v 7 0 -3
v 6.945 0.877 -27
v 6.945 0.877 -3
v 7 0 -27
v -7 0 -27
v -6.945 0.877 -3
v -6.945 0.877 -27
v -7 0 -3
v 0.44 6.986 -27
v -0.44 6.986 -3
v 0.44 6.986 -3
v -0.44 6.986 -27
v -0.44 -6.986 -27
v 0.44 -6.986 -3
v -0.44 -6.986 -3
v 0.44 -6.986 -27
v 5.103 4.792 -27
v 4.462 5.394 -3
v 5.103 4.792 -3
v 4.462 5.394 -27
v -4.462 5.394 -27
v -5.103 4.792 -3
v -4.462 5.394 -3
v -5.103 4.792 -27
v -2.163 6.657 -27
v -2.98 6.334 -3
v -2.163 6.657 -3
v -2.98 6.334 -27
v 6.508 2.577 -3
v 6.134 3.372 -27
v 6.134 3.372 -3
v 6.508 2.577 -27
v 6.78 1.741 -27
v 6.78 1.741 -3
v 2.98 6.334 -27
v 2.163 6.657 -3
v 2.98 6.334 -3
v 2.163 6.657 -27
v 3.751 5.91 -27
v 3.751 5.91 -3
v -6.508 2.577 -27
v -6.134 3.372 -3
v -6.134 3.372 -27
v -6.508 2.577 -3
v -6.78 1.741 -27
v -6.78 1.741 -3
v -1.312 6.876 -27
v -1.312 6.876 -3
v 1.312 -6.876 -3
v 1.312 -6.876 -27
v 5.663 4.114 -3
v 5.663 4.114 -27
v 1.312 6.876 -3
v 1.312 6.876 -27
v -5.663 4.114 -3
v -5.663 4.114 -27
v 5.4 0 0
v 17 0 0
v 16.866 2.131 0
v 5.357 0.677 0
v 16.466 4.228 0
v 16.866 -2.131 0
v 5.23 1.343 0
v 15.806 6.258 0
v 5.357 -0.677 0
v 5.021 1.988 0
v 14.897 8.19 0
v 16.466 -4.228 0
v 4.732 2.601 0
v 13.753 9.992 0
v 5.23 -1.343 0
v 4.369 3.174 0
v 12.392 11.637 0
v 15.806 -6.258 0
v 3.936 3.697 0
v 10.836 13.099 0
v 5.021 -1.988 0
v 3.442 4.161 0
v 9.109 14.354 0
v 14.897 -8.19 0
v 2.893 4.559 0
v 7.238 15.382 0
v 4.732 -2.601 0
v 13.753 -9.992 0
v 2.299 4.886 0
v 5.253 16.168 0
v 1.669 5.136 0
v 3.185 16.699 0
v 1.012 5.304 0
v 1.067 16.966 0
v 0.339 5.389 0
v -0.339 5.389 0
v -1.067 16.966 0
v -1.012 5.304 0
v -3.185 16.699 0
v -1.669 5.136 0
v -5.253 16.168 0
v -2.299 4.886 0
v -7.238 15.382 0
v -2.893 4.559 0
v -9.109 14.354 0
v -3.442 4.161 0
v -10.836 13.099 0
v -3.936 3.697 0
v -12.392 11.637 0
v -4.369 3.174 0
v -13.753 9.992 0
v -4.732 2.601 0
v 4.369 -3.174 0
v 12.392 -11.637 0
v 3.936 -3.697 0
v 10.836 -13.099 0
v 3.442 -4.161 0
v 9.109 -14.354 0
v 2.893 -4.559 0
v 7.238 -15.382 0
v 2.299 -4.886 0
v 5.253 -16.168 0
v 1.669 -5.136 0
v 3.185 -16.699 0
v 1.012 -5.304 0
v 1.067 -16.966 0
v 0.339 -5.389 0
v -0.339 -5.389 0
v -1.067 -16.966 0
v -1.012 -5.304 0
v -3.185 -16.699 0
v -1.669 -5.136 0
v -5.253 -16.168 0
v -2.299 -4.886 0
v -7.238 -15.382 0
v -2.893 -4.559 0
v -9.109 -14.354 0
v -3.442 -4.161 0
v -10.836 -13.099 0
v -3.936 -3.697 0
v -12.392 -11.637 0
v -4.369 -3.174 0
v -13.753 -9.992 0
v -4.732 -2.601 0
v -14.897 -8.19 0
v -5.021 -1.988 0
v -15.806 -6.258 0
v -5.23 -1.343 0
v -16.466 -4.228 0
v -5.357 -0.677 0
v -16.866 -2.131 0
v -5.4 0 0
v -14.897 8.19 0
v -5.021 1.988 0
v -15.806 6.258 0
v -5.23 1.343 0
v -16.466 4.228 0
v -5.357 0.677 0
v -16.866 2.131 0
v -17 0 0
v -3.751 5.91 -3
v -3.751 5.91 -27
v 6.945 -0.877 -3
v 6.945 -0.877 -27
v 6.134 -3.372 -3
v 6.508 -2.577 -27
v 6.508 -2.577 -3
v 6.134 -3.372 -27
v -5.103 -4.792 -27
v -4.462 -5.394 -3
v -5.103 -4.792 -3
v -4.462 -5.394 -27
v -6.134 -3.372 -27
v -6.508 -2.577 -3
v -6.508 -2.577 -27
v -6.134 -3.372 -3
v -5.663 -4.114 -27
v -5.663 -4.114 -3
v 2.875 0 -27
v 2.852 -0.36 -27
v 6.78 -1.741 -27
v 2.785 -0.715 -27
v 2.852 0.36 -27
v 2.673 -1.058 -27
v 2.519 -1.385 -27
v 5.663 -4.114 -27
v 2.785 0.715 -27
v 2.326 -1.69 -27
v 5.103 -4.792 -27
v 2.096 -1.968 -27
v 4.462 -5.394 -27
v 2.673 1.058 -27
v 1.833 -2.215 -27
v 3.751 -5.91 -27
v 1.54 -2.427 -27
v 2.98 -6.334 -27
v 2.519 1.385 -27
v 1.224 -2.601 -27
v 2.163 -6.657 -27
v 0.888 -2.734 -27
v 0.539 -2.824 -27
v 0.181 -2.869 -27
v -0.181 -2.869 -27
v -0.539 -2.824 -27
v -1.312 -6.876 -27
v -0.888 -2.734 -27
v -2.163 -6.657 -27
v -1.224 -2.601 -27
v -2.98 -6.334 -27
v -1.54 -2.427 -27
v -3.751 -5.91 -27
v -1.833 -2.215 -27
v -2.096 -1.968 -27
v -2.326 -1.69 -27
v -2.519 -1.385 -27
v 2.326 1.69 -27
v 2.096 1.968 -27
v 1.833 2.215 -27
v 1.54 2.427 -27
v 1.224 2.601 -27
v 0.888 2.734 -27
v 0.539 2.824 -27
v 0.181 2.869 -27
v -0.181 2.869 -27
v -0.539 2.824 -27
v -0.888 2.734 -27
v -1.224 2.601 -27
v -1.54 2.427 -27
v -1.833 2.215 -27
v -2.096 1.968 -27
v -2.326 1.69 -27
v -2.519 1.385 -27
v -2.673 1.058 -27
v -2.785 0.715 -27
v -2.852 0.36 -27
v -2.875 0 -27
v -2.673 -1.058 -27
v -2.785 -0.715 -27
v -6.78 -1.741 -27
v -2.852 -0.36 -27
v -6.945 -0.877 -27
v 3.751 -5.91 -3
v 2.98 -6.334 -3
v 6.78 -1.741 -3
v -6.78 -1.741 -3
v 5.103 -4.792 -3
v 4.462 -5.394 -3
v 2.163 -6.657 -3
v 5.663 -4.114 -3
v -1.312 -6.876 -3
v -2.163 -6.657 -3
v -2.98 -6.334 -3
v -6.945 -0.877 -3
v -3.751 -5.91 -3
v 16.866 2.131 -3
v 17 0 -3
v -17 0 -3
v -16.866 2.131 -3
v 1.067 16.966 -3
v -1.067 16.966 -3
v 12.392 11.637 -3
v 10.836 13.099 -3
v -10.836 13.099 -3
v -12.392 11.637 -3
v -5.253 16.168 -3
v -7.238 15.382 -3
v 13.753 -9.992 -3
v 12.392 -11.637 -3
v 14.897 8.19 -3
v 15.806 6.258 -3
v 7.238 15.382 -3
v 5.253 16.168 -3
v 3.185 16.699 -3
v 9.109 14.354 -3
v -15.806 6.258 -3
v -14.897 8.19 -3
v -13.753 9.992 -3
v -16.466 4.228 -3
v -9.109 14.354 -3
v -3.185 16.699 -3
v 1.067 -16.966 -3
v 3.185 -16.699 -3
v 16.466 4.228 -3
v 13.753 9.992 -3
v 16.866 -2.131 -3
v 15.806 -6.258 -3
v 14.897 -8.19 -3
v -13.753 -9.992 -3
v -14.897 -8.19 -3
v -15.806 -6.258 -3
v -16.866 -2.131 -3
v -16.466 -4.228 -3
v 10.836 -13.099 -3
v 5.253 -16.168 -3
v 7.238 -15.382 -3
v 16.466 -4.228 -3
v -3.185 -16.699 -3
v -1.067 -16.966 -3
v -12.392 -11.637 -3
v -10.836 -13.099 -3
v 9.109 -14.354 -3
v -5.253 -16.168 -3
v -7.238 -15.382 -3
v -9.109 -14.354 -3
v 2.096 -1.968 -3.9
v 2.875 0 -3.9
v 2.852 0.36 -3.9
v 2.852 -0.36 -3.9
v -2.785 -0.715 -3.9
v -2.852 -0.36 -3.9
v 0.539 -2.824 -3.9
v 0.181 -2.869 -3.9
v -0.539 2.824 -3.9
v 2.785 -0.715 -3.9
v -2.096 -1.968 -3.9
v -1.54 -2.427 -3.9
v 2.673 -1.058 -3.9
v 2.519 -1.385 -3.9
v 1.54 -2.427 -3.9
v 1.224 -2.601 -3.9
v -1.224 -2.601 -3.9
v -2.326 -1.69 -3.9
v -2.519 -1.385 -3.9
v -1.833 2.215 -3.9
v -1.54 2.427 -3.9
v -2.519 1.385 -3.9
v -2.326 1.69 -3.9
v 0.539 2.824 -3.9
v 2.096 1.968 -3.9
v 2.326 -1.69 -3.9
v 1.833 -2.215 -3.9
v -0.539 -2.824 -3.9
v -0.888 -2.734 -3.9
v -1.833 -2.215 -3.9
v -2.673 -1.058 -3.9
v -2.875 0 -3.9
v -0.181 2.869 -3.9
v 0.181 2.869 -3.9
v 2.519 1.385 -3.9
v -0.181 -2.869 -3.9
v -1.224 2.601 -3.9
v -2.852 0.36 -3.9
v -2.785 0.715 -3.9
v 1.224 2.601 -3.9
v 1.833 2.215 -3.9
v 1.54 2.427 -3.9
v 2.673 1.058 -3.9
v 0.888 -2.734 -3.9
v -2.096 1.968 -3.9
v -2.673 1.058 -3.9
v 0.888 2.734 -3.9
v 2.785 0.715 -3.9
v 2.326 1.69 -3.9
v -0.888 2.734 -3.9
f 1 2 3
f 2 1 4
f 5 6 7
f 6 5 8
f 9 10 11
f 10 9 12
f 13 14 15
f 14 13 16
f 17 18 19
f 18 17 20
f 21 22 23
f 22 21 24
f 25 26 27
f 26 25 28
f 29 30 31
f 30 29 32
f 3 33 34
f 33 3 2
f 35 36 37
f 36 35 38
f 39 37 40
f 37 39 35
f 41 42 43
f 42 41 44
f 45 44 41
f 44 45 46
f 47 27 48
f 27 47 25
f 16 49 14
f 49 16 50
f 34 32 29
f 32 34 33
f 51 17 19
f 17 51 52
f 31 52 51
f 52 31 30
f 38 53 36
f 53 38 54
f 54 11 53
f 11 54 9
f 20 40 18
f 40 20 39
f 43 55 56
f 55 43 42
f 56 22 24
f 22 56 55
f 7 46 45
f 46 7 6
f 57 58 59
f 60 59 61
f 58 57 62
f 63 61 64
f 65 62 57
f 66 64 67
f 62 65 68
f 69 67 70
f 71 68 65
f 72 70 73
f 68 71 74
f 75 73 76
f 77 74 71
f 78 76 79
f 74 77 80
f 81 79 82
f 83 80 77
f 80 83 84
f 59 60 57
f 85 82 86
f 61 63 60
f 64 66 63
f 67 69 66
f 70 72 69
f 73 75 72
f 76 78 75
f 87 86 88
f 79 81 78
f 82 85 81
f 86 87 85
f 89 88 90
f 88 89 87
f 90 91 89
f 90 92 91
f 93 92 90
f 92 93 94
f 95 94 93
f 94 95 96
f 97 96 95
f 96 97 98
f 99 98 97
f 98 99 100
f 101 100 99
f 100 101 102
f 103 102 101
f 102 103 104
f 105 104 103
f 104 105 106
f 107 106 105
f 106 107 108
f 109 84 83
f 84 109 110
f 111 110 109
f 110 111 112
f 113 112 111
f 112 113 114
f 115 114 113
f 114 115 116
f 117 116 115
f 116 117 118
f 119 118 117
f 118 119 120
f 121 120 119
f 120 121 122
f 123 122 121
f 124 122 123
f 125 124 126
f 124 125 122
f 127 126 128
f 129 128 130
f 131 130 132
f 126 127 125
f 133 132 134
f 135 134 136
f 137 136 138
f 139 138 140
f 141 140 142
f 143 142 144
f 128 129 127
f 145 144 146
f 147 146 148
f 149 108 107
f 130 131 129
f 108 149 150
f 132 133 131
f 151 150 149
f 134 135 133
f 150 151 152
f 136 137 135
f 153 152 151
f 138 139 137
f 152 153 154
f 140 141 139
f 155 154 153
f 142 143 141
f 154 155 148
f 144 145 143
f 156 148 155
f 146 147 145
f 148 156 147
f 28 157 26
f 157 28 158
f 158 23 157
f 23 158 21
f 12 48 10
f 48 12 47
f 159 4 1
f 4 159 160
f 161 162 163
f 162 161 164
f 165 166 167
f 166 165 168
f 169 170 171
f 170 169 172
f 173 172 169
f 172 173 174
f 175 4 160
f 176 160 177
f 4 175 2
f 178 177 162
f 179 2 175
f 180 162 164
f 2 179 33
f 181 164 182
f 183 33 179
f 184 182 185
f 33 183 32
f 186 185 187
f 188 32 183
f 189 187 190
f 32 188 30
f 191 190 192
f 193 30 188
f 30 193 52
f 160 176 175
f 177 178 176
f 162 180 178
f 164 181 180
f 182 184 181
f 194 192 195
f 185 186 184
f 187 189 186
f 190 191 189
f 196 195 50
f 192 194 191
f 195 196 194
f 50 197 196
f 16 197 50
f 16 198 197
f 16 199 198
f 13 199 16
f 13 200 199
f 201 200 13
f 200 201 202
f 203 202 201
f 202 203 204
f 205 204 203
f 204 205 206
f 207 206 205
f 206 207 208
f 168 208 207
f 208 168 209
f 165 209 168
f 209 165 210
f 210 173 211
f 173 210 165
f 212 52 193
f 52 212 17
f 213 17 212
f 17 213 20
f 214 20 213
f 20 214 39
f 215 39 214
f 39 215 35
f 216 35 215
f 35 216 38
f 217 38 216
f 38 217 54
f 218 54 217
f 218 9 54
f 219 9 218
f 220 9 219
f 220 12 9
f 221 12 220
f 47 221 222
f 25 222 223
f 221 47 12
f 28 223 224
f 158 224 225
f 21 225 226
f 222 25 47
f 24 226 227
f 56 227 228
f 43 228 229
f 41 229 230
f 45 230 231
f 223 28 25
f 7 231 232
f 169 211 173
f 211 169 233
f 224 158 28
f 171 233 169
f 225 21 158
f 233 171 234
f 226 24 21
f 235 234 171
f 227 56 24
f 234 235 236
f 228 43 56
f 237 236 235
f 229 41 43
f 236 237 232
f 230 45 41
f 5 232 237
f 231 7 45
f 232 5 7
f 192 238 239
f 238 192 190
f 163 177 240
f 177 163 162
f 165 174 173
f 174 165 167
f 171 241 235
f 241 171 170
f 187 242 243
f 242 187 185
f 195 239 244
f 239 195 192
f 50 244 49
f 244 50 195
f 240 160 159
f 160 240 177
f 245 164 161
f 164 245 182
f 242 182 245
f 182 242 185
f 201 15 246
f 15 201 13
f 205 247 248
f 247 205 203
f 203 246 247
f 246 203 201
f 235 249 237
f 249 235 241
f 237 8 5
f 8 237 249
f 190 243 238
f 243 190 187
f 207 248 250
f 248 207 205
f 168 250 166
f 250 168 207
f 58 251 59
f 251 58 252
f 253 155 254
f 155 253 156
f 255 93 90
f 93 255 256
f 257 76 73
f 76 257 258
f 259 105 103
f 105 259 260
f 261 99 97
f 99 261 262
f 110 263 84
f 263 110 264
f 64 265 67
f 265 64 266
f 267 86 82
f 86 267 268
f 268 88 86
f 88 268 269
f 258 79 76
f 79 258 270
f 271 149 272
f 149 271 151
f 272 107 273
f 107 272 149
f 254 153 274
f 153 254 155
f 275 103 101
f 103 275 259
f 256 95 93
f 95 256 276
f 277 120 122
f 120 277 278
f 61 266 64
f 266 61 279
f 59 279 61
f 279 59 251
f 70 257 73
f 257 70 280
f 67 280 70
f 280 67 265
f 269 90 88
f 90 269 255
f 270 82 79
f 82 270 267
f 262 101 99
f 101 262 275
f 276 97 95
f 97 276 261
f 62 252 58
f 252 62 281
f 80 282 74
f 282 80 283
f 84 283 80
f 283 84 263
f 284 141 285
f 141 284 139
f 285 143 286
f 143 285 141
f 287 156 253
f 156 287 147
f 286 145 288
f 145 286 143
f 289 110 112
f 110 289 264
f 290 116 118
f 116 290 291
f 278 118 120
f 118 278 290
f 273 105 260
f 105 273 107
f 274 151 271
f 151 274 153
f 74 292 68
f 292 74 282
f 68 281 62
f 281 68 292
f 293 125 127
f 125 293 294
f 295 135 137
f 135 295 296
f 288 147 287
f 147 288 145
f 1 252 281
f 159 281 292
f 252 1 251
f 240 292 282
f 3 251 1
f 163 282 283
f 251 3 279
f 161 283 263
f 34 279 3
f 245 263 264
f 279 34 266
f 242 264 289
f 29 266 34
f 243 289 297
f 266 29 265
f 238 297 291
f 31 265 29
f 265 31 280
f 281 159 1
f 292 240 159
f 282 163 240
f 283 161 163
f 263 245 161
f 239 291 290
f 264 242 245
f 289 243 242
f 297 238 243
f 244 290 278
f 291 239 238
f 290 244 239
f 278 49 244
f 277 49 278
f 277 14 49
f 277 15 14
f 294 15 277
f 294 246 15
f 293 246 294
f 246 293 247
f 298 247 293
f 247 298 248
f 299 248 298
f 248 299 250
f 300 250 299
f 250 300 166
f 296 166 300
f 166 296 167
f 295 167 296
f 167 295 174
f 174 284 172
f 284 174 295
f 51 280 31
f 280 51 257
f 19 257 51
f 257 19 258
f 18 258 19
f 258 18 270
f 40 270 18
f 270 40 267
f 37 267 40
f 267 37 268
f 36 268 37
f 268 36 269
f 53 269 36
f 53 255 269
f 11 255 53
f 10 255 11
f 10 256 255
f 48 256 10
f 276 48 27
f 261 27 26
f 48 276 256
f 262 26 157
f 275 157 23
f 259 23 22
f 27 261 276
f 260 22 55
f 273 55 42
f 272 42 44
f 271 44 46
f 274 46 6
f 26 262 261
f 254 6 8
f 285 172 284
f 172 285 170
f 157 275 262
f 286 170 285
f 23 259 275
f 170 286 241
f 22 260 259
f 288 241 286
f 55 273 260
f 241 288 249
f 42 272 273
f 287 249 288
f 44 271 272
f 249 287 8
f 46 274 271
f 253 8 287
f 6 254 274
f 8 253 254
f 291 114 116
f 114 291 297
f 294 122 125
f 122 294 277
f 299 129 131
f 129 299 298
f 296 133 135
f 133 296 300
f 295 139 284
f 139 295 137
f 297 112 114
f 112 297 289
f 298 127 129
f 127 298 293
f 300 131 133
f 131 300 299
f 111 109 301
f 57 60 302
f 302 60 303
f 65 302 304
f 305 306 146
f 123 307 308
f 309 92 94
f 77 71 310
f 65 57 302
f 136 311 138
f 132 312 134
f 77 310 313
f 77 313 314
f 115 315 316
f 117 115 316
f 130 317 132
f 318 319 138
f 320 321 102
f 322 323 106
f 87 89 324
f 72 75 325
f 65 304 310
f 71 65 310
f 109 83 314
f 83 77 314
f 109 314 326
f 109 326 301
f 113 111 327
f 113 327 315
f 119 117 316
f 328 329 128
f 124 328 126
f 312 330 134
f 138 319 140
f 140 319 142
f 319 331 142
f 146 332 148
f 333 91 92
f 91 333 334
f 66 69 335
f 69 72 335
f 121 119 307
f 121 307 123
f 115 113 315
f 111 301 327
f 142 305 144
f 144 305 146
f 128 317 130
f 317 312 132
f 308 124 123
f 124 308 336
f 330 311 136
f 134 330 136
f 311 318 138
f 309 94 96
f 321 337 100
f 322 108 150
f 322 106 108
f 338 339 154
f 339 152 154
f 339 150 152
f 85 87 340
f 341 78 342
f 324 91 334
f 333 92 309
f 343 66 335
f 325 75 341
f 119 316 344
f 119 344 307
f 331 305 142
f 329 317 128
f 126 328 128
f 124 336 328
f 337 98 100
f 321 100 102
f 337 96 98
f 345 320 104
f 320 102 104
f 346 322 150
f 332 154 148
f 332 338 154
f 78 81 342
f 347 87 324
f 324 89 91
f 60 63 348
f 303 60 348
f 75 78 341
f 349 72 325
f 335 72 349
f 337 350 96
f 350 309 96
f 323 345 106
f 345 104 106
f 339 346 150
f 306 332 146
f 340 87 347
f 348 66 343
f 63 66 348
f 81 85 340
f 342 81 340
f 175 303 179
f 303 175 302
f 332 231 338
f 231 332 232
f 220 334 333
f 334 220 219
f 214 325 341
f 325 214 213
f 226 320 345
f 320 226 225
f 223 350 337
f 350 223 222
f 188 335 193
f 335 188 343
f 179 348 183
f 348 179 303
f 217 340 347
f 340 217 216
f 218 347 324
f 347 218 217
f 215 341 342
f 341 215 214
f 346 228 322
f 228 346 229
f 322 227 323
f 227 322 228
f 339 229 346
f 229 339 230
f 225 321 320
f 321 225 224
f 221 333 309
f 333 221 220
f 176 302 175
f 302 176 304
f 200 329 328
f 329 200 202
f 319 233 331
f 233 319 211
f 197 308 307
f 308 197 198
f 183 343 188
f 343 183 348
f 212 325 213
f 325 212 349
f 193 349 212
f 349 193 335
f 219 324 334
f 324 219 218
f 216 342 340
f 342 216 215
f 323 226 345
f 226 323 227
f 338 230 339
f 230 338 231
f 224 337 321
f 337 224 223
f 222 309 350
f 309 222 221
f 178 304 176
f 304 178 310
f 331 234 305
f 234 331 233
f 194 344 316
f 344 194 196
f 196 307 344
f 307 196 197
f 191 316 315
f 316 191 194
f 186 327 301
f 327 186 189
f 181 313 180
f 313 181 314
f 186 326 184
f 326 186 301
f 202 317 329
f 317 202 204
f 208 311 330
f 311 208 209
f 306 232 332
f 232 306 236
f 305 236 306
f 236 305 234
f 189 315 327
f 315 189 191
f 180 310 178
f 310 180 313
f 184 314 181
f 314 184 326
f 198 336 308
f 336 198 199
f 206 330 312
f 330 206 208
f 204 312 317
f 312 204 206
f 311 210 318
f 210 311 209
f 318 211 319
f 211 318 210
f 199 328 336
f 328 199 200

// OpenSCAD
$fn = 50;


difference() {
	union() {
		translate(v = [0, 0, -27.0000000000]) {
			cylinder(h = 27, r = 7.0000000000);
		}
		translate(v = [0, 0, -3.0000000000]) {
			cylinder(h = 3, r = 17.0000000000);
		}
	}
	union() {
		translate(v = [0, 0, 0]) {
			rotate(a = [0, 0, 0]) {
				difference() {
					union() {
						#translate(v = [0, 0, -27.0000000000]) {
							cylinder(h = 27, r = 2.6000000000);
						}
						#translate(v = [0, 0, -3.9000000000]) {
							cylinder(h = 3.9000000000, r = 7.0000000000, r1 = 2.8750000000, r2 = 5.4000000000);
						}
						#translate(v = [0, 0, -27.0000000000]) {
							cylinder(h = 27, r = 2.8750000000);
						}
						#translate(v = [0, 0, -27.0000000000]) {
							cylinder(h = 27, r = 2.6000000000);
						}
					}
					union();
				}
			}
		}
	}
}
